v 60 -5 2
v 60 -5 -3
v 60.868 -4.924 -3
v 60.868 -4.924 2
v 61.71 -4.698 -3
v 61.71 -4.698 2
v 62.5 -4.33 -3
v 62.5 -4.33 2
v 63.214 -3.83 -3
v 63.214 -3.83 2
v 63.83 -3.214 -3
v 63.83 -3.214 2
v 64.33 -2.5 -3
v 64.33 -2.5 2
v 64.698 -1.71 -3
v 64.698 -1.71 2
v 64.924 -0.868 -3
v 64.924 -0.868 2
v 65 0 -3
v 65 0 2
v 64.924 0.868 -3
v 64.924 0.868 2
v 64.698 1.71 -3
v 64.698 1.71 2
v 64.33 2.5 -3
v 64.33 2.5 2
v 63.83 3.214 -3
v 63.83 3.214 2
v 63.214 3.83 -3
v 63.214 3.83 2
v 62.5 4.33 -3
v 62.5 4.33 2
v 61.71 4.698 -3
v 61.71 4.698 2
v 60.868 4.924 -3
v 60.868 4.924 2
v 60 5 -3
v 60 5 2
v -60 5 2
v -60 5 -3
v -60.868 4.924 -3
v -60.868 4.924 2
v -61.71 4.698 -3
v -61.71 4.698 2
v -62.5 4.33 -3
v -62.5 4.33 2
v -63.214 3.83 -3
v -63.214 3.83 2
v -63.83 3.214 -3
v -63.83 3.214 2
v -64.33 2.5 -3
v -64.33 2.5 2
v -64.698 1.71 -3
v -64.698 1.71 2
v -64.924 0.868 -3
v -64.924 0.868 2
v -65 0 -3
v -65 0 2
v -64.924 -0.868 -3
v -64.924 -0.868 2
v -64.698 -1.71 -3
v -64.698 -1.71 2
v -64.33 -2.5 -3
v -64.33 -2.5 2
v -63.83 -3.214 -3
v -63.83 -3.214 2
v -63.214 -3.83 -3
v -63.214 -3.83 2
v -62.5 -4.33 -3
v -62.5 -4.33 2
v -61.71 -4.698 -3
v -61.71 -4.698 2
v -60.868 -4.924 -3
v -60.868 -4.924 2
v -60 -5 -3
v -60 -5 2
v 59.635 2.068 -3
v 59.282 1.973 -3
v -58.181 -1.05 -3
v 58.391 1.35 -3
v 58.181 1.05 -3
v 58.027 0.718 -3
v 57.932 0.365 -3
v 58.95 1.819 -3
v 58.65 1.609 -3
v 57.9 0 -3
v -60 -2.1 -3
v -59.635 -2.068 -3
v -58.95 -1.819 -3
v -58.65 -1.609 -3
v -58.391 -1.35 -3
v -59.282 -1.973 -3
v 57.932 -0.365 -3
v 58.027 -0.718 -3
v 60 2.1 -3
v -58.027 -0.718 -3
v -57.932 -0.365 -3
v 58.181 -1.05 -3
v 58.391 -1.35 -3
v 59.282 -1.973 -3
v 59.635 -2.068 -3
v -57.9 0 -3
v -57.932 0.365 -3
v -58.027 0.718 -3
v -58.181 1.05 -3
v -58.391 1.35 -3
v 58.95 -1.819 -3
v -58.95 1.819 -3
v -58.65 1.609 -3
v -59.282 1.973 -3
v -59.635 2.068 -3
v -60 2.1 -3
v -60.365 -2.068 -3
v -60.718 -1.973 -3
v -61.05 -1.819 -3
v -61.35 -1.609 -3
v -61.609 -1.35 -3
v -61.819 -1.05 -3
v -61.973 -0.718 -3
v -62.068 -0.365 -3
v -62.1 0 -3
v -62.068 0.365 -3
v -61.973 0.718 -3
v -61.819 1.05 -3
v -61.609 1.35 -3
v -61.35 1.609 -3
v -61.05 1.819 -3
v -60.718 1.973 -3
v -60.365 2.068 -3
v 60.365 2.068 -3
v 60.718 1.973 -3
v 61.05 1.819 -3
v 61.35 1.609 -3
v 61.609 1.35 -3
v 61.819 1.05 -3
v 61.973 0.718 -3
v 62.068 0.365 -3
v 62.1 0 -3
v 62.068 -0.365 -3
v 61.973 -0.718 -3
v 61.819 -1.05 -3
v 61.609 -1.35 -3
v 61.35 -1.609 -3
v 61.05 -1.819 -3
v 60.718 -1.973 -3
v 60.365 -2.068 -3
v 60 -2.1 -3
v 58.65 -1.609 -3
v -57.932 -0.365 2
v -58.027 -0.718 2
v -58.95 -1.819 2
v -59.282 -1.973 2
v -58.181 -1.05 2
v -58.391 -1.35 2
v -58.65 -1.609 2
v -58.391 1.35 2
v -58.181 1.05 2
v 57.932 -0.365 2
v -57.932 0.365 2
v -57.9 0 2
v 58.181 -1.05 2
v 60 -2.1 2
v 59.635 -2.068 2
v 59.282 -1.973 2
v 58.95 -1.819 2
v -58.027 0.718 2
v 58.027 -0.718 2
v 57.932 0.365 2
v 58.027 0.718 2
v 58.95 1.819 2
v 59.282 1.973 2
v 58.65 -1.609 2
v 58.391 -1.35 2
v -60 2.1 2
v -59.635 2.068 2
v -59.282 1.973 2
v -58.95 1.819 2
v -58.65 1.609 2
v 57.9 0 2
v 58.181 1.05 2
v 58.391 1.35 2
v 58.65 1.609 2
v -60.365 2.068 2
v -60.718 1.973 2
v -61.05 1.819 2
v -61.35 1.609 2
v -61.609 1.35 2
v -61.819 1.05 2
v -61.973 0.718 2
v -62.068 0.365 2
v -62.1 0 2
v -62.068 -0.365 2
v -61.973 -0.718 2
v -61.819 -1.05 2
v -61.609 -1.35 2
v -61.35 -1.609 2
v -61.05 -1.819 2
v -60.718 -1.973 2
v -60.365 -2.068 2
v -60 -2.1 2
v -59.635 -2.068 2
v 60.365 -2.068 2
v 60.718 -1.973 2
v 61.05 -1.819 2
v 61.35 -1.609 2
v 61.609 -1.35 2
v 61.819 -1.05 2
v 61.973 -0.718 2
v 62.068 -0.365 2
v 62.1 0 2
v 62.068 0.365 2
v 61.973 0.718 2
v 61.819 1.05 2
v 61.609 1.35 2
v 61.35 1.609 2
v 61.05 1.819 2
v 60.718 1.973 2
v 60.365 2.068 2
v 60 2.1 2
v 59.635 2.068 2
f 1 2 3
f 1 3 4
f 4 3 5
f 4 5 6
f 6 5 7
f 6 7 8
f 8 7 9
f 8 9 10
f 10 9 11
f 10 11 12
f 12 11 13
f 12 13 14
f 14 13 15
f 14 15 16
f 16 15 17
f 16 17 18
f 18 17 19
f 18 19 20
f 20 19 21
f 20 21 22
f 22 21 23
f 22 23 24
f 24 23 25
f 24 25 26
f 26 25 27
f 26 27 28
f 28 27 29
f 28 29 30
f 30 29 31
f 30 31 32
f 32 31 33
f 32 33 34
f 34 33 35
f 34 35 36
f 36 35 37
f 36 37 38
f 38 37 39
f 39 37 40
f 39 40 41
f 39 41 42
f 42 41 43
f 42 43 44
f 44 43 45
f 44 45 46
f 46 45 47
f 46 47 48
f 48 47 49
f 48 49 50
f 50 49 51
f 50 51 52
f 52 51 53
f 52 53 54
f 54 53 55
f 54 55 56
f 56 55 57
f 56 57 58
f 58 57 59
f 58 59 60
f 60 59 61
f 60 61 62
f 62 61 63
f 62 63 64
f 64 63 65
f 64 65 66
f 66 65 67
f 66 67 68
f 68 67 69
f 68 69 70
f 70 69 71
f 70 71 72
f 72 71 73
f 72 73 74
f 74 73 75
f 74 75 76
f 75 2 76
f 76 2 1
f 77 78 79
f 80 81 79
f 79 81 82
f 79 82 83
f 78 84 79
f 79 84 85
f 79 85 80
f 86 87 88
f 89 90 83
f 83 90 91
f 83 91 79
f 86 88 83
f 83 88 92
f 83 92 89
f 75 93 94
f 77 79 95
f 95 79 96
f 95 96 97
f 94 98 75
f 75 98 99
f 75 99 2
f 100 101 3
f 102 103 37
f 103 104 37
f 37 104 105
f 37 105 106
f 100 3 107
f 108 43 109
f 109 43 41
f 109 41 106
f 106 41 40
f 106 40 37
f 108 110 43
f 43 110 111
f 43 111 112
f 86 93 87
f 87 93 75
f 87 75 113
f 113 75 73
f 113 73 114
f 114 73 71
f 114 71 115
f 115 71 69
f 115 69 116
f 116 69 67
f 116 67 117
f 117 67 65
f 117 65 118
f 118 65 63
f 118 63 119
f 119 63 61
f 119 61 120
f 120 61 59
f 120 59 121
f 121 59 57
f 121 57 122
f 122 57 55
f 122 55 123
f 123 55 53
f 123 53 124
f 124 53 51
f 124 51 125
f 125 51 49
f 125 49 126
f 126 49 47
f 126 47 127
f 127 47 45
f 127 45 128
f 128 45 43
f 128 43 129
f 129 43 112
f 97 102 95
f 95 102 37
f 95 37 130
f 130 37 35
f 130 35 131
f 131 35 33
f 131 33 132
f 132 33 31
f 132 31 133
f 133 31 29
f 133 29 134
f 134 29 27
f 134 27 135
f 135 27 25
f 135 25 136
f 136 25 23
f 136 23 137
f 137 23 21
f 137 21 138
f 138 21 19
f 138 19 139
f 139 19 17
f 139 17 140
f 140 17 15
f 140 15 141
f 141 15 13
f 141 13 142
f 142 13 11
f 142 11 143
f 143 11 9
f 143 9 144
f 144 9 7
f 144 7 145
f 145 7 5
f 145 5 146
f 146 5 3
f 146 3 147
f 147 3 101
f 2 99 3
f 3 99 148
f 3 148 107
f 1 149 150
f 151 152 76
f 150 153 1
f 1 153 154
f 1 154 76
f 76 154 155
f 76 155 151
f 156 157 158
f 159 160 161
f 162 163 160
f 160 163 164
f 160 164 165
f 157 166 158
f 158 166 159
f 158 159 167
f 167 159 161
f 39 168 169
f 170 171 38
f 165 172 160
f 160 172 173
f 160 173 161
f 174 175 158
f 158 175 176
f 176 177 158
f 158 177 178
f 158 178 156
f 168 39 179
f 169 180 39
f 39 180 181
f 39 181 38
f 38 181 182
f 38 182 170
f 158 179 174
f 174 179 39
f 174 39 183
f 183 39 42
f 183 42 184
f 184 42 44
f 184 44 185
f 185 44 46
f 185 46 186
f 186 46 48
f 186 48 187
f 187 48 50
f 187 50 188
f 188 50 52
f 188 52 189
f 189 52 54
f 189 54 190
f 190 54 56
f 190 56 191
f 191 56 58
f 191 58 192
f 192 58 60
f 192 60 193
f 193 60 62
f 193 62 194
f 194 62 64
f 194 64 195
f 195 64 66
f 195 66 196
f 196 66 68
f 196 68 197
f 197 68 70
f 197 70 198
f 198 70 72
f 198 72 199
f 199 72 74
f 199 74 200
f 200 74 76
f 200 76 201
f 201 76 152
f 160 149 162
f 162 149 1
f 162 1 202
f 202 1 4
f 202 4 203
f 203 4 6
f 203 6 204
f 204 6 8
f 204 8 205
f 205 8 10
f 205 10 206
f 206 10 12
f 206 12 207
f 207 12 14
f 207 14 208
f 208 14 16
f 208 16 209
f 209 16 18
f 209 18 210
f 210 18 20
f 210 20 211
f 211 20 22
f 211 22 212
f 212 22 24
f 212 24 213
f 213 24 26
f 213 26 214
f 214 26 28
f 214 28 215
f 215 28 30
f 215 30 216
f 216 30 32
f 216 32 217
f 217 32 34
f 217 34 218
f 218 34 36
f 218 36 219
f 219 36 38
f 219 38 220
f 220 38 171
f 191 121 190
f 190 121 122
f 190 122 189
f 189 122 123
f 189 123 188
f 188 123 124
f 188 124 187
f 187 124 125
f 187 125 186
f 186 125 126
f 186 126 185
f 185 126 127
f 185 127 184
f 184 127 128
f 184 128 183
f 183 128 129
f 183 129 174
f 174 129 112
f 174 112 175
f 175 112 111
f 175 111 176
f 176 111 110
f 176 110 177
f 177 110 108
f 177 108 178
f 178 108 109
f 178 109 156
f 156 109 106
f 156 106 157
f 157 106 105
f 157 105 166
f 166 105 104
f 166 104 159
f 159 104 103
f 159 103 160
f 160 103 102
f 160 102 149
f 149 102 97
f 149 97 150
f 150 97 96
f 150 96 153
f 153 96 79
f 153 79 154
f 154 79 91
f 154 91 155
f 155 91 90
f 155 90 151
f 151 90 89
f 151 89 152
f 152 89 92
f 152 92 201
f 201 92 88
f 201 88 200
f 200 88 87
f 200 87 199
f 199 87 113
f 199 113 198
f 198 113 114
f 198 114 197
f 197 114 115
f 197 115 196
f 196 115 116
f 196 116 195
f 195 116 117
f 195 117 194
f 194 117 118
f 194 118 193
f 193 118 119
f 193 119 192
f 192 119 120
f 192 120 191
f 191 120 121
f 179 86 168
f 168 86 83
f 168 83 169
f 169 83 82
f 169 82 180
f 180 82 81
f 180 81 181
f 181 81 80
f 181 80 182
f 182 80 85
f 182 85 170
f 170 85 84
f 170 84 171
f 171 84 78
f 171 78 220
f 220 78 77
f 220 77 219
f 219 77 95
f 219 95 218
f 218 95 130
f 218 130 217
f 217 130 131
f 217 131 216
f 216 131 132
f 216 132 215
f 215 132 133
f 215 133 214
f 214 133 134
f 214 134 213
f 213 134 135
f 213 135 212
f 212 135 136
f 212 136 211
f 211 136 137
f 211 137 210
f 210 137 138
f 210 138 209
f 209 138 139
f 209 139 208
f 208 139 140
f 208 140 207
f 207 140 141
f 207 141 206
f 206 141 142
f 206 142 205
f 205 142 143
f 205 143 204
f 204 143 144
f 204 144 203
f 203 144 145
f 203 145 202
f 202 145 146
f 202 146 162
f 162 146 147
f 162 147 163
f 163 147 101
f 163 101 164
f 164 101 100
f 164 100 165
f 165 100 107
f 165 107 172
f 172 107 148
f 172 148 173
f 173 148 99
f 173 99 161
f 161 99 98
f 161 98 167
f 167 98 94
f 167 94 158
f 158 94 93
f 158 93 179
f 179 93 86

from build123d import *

# Parameters (mm, degrees)
BOSS_EXTRUDE1_DEPTH = 3
SKETCH2_W           = 155.927688531
SKETCH2_H           = 55.200678057
CUT_EXTRUDE1_DEPTH  = 1
SKETCH3_R           = 2.1
CUT_EXTRUDE2_DEPTH  = 66.383484153


with BuildPart() as part:
    # Sketch1 → Boss-Extrude1 (new, symmetric)
    with BuildSketch(Plane.XY):
        with BuildLine():
            Line((60, 5), (-60, 5))
            ThreePointArc((-60, 5), (-65, 0), (-60, -5))
            Line((-60, -5), (60, -5))
            ThreePointArc((60, -5), (65, 0), (60, 5))
        make_face()
    extrude(amount=BOSS_EXTRUDE1_DEPTH, both=True)

    # Sketch2 → Cut-Extrude1 (cut)
    with BuildSketch(Plane.XY.offset(3)):
        with Locations((-0.853618733, 0.071134895)):
            Rectangle(SKETCH2_W, SKETCH2_H)
    extrude(amount=-CUT_EXTRUDE1_DEPTH, mode=Mode.SUBTRACT)

    # Sketch3 → Cut-Extrude2 (cut, through all)
    with BuildSketch(Plane(origin=(0, 0, -3), x_dir=(-1, 0, 0), z_dir=(0, 0, -1))):
        with Locations((-60, 0)):
            Circle(SKETCH3_R)
        with Locations((60, 0)):
            Circle(SKETCH3_R)
    extrude(amount=-CUT_EXTRUDE2_DEPTH, mode=Mode.SUBTRACT)


solid = part.part
